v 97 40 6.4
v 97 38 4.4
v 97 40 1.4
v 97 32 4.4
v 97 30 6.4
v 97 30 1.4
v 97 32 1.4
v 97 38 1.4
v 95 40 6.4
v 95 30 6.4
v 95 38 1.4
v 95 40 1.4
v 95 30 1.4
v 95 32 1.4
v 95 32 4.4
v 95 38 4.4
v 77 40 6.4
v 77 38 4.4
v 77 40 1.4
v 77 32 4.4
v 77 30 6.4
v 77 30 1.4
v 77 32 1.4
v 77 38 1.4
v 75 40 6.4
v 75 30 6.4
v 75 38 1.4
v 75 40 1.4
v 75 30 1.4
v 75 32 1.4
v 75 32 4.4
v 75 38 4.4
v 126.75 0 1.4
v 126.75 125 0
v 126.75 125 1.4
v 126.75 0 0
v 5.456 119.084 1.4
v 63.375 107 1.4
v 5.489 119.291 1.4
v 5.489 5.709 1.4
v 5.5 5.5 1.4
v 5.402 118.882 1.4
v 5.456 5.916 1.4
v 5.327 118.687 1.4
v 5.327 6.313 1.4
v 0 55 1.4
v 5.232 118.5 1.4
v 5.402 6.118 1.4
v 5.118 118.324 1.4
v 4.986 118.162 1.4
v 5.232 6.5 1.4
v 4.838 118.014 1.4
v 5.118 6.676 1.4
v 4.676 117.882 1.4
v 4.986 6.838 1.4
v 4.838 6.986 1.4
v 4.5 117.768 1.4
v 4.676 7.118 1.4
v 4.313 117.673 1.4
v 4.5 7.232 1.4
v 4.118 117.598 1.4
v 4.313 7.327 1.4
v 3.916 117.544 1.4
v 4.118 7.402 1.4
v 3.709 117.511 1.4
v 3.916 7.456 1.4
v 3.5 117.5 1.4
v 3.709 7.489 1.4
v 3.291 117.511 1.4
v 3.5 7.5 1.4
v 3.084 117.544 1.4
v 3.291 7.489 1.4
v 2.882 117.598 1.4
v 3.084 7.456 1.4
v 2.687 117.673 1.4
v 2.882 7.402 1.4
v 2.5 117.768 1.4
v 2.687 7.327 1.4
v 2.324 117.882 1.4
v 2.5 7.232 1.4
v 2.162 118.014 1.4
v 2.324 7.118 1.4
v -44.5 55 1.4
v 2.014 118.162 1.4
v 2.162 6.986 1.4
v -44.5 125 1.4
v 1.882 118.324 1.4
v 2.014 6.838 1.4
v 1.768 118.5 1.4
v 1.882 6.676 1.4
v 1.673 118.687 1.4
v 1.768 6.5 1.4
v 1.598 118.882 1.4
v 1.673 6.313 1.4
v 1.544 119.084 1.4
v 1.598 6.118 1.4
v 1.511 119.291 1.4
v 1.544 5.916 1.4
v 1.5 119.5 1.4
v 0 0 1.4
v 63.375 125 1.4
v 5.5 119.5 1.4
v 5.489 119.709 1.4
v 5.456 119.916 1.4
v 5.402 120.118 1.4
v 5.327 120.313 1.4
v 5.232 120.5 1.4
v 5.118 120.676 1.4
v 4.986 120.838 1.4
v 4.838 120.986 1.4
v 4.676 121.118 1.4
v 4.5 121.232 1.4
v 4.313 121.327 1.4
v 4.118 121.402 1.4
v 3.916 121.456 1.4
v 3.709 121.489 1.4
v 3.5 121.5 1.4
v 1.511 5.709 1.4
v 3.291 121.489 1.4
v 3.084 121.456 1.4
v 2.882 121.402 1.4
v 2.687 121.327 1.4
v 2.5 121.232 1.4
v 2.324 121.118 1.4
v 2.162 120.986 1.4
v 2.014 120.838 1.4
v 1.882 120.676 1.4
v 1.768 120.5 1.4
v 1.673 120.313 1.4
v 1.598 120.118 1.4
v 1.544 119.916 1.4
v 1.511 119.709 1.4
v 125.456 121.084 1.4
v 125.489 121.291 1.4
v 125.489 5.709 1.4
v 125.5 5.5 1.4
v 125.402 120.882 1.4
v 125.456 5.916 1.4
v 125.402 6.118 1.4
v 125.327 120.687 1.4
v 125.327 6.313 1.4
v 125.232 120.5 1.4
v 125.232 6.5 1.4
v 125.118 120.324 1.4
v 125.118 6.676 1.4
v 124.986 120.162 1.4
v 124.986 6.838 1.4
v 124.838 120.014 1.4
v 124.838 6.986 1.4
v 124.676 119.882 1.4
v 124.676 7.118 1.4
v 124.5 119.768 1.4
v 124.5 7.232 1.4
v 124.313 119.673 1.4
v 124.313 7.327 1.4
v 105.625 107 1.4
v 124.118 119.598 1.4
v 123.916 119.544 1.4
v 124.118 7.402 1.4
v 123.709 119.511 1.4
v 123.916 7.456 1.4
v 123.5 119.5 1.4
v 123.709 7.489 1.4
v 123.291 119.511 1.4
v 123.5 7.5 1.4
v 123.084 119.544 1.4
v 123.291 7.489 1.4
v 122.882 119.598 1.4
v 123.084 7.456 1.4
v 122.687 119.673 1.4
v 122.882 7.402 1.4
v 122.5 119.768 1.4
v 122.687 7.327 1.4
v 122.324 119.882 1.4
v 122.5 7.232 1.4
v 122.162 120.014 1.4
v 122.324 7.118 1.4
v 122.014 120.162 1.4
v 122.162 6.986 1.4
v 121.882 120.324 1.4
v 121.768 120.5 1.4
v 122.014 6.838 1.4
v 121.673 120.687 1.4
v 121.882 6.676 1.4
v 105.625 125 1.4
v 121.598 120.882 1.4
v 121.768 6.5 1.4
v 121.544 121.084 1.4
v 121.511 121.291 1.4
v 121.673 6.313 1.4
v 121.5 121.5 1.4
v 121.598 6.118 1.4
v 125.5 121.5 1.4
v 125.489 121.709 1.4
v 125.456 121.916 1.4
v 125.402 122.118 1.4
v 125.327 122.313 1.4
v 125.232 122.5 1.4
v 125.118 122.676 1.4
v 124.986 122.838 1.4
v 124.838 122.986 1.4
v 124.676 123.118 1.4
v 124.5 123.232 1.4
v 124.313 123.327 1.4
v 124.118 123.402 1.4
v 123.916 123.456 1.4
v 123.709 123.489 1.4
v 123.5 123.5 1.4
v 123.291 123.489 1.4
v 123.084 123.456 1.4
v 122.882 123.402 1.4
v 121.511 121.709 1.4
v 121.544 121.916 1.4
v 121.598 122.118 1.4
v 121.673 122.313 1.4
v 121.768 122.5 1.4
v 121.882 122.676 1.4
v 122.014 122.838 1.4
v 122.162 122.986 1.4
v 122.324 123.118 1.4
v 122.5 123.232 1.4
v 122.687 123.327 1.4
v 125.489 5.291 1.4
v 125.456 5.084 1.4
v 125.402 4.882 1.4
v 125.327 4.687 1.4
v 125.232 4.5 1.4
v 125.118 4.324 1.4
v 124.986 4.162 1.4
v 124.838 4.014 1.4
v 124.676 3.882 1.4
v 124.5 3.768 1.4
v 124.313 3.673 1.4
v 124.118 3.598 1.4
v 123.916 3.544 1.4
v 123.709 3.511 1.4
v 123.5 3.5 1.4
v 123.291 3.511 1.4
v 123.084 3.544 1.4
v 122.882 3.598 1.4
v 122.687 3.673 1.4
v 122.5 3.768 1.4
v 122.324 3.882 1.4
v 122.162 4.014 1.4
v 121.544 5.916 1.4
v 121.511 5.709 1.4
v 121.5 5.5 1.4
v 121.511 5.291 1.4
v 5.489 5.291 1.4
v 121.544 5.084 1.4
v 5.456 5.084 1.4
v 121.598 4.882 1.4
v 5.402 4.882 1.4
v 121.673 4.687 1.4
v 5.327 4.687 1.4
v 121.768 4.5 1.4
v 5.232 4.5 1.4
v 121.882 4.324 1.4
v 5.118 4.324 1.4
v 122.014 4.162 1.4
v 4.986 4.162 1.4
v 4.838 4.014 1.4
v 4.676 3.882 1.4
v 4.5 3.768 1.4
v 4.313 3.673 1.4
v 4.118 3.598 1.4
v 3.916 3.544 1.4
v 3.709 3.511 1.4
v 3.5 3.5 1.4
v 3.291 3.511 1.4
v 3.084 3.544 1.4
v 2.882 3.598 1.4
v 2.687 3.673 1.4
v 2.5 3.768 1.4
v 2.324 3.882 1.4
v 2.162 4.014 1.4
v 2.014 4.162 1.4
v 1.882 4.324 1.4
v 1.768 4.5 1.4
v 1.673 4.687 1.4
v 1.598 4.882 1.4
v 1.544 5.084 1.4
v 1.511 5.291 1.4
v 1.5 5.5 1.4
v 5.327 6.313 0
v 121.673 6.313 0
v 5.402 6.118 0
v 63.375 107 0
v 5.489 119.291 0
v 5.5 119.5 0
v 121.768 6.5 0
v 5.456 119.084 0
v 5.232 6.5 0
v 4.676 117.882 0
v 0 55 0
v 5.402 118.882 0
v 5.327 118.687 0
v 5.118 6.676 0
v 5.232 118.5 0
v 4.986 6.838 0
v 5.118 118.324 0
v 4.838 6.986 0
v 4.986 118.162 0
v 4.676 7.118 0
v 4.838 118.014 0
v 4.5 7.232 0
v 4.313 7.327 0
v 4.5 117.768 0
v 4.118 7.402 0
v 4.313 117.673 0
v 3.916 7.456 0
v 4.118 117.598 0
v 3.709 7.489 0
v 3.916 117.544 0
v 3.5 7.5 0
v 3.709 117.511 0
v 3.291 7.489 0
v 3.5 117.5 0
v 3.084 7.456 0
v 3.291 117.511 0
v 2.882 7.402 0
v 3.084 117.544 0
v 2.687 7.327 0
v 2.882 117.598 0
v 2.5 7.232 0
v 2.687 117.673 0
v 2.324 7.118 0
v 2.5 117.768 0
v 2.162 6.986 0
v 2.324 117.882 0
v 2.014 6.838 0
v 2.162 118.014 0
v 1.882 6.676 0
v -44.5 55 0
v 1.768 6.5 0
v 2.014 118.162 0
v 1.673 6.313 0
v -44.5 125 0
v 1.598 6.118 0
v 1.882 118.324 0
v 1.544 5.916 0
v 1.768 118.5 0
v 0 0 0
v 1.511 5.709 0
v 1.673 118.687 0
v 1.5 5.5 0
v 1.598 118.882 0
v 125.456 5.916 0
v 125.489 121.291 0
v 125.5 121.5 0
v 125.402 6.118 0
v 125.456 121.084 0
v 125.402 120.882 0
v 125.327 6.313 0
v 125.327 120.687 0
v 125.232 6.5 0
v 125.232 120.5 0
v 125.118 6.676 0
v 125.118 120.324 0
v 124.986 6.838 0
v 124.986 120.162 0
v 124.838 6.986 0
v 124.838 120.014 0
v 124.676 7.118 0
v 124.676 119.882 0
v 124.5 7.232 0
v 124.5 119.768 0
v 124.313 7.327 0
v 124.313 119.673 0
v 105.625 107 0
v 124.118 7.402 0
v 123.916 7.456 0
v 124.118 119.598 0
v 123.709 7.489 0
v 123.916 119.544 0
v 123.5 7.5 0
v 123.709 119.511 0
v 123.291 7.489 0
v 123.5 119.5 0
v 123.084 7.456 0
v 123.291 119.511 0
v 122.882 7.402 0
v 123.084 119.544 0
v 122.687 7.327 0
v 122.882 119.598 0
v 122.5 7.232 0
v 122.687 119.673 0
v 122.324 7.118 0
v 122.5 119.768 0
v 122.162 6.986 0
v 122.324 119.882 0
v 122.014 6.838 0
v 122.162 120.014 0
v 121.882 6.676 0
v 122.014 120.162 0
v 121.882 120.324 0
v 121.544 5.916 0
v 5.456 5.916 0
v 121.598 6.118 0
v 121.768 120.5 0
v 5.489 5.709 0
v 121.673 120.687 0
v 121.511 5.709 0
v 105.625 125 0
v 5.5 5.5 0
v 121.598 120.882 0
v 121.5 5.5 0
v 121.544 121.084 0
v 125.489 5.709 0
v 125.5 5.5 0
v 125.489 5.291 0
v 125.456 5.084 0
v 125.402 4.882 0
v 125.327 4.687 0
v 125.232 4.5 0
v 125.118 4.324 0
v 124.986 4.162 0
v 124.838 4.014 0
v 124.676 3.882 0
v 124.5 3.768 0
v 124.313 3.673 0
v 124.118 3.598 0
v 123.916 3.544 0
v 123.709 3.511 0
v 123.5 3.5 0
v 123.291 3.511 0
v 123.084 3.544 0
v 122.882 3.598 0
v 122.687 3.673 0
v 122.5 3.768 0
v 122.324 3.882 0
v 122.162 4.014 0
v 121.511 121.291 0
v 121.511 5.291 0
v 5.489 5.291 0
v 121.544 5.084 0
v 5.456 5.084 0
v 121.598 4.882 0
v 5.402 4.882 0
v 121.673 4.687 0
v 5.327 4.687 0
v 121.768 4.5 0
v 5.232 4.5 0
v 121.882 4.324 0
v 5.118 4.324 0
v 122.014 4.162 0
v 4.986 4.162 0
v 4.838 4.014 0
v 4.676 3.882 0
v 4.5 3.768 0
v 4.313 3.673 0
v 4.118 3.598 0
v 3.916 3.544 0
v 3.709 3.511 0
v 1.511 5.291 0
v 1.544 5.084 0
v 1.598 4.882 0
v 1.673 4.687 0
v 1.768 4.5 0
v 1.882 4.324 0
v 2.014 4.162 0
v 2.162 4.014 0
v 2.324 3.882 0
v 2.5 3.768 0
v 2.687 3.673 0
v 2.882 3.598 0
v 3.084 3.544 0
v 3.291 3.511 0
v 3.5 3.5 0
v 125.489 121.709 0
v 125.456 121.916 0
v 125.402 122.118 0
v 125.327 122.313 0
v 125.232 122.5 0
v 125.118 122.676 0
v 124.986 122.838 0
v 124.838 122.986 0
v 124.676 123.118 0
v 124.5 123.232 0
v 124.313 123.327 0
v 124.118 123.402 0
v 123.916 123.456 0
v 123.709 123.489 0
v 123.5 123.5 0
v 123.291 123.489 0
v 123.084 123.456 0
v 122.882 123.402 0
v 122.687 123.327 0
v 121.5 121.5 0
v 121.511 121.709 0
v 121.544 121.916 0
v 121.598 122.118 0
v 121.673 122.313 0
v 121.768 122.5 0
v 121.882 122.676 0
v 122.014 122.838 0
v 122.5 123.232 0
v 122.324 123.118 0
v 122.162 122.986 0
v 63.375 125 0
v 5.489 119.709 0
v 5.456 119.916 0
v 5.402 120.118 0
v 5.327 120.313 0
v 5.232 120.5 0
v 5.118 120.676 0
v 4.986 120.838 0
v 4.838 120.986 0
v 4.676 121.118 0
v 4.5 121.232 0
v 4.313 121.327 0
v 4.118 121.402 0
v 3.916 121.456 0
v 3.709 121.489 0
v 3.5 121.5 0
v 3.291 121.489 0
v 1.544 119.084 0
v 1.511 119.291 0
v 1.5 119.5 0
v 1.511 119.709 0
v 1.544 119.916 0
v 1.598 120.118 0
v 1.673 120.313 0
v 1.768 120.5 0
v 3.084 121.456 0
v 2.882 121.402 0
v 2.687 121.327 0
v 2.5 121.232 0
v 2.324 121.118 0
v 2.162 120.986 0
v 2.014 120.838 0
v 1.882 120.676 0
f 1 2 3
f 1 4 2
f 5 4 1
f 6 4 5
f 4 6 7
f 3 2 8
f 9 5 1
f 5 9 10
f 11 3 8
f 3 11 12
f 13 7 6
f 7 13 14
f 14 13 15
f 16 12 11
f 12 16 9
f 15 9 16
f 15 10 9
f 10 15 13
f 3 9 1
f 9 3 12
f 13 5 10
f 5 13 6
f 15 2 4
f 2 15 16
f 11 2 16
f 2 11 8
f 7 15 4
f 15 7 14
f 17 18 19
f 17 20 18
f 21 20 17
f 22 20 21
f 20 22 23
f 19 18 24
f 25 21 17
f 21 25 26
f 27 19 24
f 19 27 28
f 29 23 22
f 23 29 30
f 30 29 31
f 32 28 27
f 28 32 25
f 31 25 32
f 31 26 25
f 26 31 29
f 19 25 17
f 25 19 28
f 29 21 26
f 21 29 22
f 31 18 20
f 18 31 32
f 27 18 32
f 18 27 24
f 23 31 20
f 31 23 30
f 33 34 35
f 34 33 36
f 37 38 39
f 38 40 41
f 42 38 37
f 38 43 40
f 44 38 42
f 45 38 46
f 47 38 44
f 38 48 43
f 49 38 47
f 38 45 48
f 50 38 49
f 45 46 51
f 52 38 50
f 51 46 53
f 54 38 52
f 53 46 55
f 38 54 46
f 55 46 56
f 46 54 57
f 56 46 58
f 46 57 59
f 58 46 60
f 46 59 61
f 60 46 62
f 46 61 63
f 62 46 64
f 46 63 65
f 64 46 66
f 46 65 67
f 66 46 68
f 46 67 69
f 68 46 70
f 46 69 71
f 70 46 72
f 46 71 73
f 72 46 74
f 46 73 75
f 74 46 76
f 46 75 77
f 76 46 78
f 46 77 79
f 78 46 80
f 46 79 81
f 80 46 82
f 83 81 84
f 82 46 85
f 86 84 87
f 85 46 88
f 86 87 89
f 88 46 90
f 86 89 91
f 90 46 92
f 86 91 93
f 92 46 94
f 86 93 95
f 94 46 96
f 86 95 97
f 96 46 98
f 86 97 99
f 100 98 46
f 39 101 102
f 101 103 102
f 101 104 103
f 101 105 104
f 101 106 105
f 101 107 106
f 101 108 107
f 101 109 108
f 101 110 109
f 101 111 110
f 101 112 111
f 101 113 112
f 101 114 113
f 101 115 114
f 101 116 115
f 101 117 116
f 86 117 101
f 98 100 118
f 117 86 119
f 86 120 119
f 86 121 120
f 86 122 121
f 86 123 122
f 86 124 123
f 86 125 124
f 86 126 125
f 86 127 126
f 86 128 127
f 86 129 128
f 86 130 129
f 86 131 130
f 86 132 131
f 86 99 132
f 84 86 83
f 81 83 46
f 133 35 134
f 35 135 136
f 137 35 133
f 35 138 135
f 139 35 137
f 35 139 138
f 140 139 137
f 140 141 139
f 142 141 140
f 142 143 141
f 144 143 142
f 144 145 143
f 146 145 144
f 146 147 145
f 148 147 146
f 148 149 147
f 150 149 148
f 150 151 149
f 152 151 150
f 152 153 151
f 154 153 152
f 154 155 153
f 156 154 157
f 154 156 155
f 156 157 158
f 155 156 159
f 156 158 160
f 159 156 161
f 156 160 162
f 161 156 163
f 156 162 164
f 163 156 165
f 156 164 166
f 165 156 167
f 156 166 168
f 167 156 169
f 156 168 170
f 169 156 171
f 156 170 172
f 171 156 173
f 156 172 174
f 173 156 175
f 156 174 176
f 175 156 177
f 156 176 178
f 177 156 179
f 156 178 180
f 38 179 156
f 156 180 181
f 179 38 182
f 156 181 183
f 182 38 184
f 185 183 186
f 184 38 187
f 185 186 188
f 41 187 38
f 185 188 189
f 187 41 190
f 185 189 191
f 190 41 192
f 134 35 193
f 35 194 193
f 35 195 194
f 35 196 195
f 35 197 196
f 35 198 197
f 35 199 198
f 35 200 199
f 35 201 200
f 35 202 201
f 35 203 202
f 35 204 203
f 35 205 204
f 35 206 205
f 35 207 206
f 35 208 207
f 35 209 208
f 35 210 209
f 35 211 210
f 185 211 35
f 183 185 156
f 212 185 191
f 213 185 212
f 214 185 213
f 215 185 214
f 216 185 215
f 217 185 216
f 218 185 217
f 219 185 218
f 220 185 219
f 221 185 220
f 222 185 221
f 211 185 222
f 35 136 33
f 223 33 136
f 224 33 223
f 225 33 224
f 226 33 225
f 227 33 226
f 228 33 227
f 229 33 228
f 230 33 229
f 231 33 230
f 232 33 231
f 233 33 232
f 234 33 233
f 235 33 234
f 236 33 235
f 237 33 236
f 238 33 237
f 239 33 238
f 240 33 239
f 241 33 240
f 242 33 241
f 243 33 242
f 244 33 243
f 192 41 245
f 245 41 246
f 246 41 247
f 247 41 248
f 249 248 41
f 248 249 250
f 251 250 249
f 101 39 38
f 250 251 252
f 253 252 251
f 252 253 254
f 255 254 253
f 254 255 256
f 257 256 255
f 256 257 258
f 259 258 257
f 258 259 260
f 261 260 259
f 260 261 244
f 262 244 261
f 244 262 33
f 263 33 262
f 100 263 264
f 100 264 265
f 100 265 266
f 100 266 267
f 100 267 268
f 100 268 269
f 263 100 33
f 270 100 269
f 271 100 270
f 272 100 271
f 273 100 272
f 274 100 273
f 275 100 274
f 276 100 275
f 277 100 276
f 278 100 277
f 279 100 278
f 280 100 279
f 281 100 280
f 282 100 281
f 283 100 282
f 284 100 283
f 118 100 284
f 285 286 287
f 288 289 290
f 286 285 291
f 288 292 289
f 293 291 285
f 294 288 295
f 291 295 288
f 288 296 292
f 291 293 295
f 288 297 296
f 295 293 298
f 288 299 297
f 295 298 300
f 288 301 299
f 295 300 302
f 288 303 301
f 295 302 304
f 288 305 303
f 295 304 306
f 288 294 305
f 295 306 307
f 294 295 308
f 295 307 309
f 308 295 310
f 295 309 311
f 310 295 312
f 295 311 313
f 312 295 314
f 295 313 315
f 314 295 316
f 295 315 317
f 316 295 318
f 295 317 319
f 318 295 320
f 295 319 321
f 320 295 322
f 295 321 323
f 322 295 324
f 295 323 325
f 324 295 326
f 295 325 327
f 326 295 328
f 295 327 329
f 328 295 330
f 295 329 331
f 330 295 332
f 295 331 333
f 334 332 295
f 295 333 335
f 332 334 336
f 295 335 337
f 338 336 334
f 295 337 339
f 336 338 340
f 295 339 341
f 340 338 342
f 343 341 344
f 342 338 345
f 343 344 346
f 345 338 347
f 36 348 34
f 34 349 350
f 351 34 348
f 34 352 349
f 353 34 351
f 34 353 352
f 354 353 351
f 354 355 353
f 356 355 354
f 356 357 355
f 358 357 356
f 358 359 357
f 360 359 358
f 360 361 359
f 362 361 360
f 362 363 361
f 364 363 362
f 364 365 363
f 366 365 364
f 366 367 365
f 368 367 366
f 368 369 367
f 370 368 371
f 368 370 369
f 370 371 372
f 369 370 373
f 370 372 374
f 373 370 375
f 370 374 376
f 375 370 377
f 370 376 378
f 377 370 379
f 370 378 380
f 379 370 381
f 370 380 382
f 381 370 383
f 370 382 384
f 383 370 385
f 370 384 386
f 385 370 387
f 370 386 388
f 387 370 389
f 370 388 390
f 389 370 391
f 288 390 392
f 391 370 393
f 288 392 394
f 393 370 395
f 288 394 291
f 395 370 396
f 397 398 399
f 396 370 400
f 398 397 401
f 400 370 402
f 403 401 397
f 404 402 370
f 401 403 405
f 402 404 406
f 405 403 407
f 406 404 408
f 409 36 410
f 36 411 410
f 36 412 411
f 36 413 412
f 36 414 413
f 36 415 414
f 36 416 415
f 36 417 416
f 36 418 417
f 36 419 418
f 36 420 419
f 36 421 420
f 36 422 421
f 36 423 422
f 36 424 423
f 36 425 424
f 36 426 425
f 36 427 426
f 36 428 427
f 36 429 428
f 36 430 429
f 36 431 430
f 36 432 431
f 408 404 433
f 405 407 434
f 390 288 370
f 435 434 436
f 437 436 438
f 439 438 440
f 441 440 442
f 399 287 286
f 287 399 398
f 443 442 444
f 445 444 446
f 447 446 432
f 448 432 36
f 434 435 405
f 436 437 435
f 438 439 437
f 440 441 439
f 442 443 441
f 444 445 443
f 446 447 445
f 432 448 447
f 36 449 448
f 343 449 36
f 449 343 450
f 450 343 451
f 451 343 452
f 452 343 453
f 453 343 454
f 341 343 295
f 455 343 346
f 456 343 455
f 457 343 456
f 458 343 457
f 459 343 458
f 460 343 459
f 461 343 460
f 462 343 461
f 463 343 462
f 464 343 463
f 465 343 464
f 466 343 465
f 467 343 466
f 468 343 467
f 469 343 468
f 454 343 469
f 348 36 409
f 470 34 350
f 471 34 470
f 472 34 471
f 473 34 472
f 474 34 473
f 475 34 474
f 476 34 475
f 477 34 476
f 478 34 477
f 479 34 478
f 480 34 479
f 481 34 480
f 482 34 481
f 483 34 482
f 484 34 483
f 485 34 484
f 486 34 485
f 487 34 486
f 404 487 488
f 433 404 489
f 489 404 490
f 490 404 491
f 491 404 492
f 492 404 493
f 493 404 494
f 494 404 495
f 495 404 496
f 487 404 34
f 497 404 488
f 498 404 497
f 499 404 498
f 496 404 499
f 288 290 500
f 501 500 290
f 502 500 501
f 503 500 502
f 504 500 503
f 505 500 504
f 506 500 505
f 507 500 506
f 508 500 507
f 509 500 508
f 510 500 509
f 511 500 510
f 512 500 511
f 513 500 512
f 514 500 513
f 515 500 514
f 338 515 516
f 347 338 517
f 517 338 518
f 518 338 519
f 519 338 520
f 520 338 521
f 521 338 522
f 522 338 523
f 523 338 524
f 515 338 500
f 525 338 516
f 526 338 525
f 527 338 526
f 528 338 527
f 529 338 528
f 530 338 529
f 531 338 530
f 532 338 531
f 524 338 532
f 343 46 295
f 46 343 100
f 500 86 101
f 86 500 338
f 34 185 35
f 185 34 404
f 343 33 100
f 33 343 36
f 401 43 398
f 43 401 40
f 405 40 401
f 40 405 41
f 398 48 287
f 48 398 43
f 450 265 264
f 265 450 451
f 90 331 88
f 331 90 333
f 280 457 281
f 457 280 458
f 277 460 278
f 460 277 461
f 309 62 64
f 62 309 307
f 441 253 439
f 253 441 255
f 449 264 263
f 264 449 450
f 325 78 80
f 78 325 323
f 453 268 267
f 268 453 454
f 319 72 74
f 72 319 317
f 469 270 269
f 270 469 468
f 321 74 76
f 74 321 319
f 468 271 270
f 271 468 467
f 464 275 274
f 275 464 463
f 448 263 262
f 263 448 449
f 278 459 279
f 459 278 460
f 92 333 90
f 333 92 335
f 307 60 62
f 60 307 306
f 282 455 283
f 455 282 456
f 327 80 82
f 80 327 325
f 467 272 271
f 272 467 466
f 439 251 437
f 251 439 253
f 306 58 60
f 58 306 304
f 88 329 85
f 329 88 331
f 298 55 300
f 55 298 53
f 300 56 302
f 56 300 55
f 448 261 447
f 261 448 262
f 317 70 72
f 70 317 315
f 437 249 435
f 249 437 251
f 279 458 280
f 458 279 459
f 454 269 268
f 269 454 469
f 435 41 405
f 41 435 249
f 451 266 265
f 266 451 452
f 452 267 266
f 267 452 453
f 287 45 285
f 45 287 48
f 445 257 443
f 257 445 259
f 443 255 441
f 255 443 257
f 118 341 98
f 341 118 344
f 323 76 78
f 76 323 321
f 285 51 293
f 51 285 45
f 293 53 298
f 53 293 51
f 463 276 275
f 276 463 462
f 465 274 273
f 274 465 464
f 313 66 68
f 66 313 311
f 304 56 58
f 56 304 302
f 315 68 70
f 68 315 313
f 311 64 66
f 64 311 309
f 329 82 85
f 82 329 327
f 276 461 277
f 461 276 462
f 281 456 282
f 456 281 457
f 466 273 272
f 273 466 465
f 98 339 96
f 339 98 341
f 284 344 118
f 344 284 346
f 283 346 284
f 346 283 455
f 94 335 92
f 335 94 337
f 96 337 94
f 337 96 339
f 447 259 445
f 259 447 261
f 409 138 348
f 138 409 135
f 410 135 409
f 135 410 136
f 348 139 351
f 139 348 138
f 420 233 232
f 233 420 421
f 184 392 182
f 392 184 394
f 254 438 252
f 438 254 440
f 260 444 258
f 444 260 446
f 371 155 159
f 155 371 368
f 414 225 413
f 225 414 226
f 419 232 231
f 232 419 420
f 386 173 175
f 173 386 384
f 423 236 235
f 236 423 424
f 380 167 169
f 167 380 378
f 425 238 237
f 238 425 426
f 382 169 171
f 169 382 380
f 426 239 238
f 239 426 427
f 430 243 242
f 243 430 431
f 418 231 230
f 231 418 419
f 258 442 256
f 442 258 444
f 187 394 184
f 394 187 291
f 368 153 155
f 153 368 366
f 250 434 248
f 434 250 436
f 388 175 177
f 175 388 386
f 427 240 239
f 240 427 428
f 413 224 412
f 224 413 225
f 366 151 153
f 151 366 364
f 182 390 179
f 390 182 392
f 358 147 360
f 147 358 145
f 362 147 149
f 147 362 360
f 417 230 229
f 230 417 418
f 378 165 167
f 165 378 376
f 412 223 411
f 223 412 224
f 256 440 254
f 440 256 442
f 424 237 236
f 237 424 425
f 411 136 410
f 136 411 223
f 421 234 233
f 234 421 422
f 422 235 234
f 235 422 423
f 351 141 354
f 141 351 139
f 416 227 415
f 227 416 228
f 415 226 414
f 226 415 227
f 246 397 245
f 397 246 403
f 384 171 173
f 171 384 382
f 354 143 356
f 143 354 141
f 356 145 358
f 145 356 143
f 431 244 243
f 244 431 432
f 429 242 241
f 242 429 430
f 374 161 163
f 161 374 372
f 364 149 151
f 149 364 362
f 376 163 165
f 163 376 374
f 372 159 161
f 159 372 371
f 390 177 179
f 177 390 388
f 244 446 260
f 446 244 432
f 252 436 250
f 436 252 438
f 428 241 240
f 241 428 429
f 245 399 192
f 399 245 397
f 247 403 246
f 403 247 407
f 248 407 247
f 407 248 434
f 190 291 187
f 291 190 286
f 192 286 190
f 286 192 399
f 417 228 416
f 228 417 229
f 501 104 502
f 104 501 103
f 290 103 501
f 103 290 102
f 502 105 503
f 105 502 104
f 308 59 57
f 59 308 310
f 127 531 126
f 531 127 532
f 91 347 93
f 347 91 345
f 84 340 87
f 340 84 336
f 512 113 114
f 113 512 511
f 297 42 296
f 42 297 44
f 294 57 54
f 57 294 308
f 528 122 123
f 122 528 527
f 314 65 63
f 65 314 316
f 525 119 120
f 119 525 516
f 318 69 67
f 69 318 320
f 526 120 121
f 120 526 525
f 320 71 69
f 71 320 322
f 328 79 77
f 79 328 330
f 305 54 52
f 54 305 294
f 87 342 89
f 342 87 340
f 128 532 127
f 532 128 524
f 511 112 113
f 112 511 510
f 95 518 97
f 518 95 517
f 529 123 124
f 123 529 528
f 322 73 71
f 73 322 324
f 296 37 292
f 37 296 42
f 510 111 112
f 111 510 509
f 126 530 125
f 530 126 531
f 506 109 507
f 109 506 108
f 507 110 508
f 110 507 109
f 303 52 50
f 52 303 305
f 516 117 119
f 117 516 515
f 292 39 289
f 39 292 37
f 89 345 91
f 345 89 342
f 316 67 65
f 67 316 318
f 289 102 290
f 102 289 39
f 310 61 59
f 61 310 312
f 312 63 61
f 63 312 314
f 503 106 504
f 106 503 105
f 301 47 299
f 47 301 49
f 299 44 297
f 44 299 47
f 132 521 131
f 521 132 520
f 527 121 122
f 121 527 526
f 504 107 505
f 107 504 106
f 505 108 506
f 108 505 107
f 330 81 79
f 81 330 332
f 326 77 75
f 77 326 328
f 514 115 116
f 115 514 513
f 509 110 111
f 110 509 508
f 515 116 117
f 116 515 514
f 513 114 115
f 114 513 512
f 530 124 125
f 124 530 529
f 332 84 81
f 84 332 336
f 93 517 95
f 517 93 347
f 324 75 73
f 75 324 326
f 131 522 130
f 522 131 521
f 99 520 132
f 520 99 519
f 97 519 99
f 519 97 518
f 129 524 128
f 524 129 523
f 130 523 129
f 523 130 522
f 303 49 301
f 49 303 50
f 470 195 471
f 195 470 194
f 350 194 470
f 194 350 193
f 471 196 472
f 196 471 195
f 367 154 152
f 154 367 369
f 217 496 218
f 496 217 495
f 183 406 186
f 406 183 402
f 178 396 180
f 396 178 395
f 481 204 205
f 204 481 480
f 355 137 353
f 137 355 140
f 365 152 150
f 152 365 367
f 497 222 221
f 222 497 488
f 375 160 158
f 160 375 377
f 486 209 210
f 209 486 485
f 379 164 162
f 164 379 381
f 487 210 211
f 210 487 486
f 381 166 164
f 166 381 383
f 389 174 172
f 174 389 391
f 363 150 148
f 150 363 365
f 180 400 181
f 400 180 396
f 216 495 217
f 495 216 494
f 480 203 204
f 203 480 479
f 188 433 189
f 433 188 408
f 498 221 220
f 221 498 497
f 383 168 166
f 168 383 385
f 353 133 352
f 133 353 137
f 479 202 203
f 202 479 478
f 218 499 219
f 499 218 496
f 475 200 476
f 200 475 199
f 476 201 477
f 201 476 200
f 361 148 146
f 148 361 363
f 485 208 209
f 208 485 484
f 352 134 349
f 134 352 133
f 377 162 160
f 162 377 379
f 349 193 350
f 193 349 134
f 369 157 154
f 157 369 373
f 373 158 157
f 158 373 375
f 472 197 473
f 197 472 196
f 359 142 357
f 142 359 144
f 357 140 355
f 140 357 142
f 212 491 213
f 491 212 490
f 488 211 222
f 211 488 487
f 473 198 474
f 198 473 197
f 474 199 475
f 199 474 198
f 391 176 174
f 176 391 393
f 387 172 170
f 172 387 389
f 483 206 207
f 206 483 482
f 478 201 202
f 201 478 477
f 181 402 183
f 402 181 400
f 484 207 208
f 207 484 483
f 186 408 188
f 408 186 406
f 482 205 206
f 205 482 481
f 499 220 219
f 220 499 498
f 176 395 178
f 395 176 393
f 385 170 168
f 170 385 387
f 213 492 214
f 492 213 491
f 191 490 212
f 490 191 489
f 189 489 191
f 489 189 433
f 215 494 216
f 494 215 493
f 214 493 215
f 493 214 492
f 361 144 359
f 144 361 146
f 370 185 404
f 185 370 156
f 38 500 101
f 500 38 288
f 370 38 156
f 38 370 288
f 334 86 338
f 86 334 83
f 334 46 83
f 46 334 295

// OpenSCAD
/*
BSD 2-Clause License

Copyright (c) 2020, Ewald Stangl
All rights reserved.

Redistribution and use in source and binary forms, with or without
modification, are permitted provided that the following conditions are met:

1. Redistributions of source code must retain the above copyright notice, this
   list of conditions and the following disclaimer.

2. Redistributions in binary form must reproduce the above copyright notice,
   this list of conditions and the following disclaimer in the documentation
   and/or other materials provided with the distribution.

THIS SOFTWARE IS PROVIDED BY THE COPYRIGHT HOLDERS AND CONTRIBUTORS "AS IS"
AND ANY EXPRESS OR IMPLIED WARRANTIES, INCLUDING, BUT NOT LIMITED TO, THE
IMPLIED WARRANTIES OF MERCHANTABILITY AND FITNESS FOR A PARTICULAR PURPOSE ARE
DISCLAIMED. IN NO EVENT SHALL THE COPYRIGHT HOLDER OR CONTRIBUTORS BE LIABLE
FOR ANY DIRECT, INDIRECT, INCIDENTAL, SPECIAL, EXEMPLARY, OR CONSEQUENTIAL
DAMAGES (INCLUDING, BUT NOT LIMITED TO, PROCUREMENT OF SUBSTITUTE GOODS OR
SERVICES; LOSS OF USE, DATA, OR PROFITS; OR BUSINESS INTERRUPTION) HOWEVER
CAUSED AND ON ANY THEORY OF LIABILITY, WHETHER IN CONTRACT, STRICT LIABILITY,
OR TORT (INCLUDING NEGLIGENCE OR OTHERWISE) ARISING IN ANY WAY OUT OF THE USE
OF THIS SOFTWARE, EVEN IF ADVISED OF THE POSSIBILITY OF SUCH DAMAGE.
*/

length = 126.75;
width = 125;
height = 1.4;

translate([0, 0, 0]) {
    difference() {
        cube([length, width, height]);
        
        translate([3.5, 5.5, -1]) {
            cylinder(d = 4, h = 5, $fn = 60);
        }
        translate([length - 3.25, 5.5, -1]) {
            cylinder(d = 4, h = 5, $fn = 60);
        }
        translate([3.5, width - 5.5, -1]) {
            cylinder(d = 4, h = 5, $fn = 60);
        }
        translate([length - 3.25, width - 3.5, -1]) {
            cylinder(d = 4, h = 5, $fn = 60);
        }
        
        translate([length / 2, width - 18, -1]) {
            cube([length / 3, 25, 5]);
        }
    }
}

// cablestraps
cablestrap([75, 30, height]);
cablestrap([95, 30, height]);

translate([-44.5, width - 70, 0]) {
    cube([44.5, 70, height]);
}


module cablestrap(position) {
    translate(position) {
        difference() {
            cube([2, 10, 5]);
            translate([-1, 2, 0]) {
                cube([5, 6, 3]);
            }
        }
    }
}
